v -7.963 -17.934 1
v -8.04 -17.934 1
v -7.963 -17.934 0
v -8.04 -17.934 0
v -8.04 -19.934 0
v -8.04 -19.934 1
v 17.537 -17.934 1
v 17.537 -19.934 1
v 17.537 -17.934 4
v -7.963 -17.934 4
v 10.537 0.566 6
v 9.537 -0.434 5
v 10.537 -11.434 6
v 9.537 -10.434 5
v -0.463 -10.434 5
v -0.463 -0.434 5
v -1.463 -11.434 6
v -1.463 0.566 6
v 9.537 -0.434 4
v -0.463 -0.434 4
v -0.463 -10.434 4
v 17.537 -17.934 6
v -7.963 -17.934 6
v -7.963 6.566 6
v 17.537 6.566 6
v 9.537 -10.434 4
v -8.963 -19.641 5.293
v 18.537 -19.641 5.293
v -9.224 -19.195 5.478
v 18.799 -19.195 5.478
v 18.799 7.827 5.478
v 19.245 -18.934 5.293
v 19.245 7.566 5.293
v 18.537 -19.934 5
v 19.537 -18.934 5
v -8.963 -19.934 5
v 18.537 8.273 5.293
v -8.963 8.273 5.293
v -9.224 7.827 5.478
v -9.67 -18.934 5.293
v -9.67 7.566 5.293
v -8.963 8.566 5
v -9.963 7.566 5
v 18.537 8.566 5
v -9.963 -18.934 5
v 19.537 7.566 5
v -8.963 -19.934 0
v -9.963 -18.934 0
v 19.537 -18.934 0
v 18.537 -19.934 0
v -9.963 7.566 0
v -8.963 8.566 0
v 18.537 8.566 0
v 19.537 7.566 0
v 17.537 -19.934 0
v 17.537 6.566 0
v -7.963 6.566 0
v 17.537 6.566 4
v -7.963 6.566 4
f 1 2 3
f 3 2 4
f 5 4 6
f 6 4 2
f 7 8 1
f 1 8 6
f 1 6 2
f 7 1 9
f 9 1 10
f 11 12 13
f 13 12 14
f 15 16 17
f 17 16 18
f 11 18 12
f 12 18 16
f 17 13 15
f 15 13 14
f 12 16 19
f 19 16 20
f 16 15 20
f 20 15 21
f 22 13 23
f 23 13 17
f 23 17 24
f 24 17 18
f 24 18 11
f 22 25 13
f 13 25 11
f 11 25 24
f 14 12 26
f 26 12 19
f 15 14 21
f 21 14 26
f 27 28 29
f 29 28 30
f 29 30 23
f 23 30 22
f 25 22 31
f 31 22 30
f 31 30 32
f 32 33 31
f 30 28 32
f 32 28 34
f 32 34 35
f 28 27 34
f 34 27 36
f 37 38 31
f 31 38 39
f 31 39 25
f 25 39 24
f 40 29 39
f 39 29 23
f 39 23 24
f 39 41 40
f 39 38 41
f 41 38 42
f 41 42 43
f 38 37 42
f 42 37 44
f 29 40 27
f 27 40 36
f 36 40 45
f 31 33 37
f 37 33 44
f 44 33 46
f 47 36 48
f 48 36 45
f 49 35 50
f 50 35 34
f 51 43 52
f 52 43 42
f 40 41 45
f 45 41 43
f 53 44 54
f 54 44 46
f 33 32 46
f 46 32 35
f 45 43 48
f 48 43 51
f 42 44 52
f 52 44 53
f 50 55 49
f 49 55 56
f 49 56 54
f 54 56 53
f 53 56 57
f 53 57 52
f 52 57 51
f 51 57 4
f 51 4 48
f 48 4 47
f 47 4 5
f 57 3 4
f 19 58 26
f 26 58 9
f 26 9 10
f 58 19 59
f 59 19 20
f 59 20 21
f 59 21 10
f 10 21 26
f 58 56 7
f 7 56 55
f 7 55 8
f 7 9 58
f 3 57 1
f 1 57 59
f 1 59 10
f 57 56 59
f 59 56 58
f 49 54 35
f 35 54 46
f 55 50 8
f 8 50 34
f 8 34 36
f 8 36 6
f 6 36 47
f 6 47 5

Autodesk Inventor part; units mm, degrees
ref_plane "YZ Plane" through (0, 0, 0) normal (1, 0, 0) x (0, 1, 0)
ref_plane "XZ Plane" through (0, 0, 0) normal (0, 1, 0) x (-1, 0, 0)
ref_plane "XY Plane" through (0, 0, 0) normal (0, 0, 1) x (1, 0, 0)
sketch "Skizze1" plane through (0, 0, 0) normal (0, 0, 1) x (1, 0, 0)
  line L0 (-7.9625, 6.5659) -> (17.5375, 6.5659)
  line L1 (17.5375, 6.5659) -> (17.5375, -17.9341)
  line L2 (17.5375, -17.9341) -> (-7.9625, -17.9341)
  line L3 (-7.9625, -17.9341) -> (-7.9625, 6.5659)
  line L4 (-9.9625, 8.5659) -> (19.5375, 8.5659)
  line L5 (19.5375, 8.5659) -> (19.5375, -19.9341)
  line L6 (19.5375, -19.9341) -> (-9.9625, -19.9341)
  line L7 (-9.9625, -19.9341) -> (-9.9625, 8.5659)
  point P0 (0, 0)
  dimension "d0" = 25.5
  dimension "d1" = 24.5
  dimension "d2" = 2
  dimension "d3" = 2
  dimension "d4" = 2
  dimension "d5" = 2
extrude "Extrusion1" add sketch "Skizze1" along normal blind 4
sketch "Skizze2" plane through (0, 0, 4) normal (0, 0, 1) x (1, 0, 0)
  line L0 (-9.9625, -19.9341) -> (19.5375, -19.9341) projected
  line L1 (-9.9625, 8.5659) -> (19.5375, 8.5659)
  line L2 (19.5375, 8.5659) -> (19.5375, -19.9341)
  line L3 (19.5375, -19.9341) -> (-9.9625, -19.9341)
  line L4 (-9.9625, -19.9341) -> (-9.9625, 8.5659)
  point P0 (0, 0)
extrude "Extrusion2" add sketch "Skizze2" along normal blind 2
chamfer "Fase1" distance 1 angle 45 8 edges at (4.7875, 8.5659, 6) (-9.9625, -5.6841, 6) (-9.9625, 8.5659, 3) (19.5375, 8.5659, 3) (19.5375, -5.6841, 6) (4.7875, -19.9341, 6) (19.5375, -19.9341, 3) (-9.9625, -19.9341, 3)
chamfer "Fase2" distance 1 angle 45 4 edges at (18.5375, -5.6841, 6) (4.7875, 7.5659, 6) (-8.9625, -5.6841, 6) (4.7875, -18.9341, 6)
sketch "Skizze3" plane through (0, 0, 4) normal (0, 0, -1) x (-1, 0, 0)
  line L0 (-9.5375, -0.4341) -> (0.4625, -0.4341)
  line L1 (0.4625, -0.4341) -> (0.4625, -10.4341)
  line L2 (0.4625, -10.4341) -> (-9.5375, -10.4341)
  line L3 (-9.5375, -10.4341) -> (-9.5375, -0.4341)
  line L4 (-17.5375, 6.5659) -> (7.9625, 6.5659) projected
  line L5 (7.9625, -17.9341) -> (7.9625, 6.5659) projected
  line L6 (-17.5375, 6.5659) -> (-17.5375, -17.9341) projected
  line L7 (-17.5375, -17.9341) -> (7.9625, -17.9341) projected
  point P0 (0, 0)
  dimension "d16" = 10
  dimension "d17" = 10
  dimension "d18" = 7
  dimension "d19" = 7.5
  dimension "d20" = 8
  dimension "d21" = 7.5
extrude "Extrusion3" cut sketch "Skizze3" against normal blind 67 contours L0 L1 L2 L3
chamfer "Fase3" distance 1 angle 45 4 edges at (4.5375, -0.4341, 6) (-0.4625, -5.4341, 6) (9.5375, -5.4341, 6) (4.5375, -10.4341, 6)
sketch "Skizze4" plane through (0, 0, 0) normal (0, 0, -1) x (-1, 0, 0)
  line L0 (-17.5375, -17.9341) -> (7.9625, -17.9341) projected
  line L1 (-17.5375, -17.9341) -> (8.0395, -17.9341)
  line L2 (8.0395, -17.9341) -> (8.0395, -21.0501)
  line L3 (8.0395, -21.0501) -> (-17.5375, -21.0501)
  line L4 (-17.5375, -21.0501) -> (-17.5375, -17.9341)
  point P0 (0, 0)
extrude "Extrusion4" cut sketch "Skizze4" against normal blind 1
sketch "Skizze5" plane through (19.5375, -18.9341, 0) normal (1, 0, 0) x (0, 0, -1)
  point P0 (0, 18.9341)
properties part number "Raspberrycamhalter oberteil"
